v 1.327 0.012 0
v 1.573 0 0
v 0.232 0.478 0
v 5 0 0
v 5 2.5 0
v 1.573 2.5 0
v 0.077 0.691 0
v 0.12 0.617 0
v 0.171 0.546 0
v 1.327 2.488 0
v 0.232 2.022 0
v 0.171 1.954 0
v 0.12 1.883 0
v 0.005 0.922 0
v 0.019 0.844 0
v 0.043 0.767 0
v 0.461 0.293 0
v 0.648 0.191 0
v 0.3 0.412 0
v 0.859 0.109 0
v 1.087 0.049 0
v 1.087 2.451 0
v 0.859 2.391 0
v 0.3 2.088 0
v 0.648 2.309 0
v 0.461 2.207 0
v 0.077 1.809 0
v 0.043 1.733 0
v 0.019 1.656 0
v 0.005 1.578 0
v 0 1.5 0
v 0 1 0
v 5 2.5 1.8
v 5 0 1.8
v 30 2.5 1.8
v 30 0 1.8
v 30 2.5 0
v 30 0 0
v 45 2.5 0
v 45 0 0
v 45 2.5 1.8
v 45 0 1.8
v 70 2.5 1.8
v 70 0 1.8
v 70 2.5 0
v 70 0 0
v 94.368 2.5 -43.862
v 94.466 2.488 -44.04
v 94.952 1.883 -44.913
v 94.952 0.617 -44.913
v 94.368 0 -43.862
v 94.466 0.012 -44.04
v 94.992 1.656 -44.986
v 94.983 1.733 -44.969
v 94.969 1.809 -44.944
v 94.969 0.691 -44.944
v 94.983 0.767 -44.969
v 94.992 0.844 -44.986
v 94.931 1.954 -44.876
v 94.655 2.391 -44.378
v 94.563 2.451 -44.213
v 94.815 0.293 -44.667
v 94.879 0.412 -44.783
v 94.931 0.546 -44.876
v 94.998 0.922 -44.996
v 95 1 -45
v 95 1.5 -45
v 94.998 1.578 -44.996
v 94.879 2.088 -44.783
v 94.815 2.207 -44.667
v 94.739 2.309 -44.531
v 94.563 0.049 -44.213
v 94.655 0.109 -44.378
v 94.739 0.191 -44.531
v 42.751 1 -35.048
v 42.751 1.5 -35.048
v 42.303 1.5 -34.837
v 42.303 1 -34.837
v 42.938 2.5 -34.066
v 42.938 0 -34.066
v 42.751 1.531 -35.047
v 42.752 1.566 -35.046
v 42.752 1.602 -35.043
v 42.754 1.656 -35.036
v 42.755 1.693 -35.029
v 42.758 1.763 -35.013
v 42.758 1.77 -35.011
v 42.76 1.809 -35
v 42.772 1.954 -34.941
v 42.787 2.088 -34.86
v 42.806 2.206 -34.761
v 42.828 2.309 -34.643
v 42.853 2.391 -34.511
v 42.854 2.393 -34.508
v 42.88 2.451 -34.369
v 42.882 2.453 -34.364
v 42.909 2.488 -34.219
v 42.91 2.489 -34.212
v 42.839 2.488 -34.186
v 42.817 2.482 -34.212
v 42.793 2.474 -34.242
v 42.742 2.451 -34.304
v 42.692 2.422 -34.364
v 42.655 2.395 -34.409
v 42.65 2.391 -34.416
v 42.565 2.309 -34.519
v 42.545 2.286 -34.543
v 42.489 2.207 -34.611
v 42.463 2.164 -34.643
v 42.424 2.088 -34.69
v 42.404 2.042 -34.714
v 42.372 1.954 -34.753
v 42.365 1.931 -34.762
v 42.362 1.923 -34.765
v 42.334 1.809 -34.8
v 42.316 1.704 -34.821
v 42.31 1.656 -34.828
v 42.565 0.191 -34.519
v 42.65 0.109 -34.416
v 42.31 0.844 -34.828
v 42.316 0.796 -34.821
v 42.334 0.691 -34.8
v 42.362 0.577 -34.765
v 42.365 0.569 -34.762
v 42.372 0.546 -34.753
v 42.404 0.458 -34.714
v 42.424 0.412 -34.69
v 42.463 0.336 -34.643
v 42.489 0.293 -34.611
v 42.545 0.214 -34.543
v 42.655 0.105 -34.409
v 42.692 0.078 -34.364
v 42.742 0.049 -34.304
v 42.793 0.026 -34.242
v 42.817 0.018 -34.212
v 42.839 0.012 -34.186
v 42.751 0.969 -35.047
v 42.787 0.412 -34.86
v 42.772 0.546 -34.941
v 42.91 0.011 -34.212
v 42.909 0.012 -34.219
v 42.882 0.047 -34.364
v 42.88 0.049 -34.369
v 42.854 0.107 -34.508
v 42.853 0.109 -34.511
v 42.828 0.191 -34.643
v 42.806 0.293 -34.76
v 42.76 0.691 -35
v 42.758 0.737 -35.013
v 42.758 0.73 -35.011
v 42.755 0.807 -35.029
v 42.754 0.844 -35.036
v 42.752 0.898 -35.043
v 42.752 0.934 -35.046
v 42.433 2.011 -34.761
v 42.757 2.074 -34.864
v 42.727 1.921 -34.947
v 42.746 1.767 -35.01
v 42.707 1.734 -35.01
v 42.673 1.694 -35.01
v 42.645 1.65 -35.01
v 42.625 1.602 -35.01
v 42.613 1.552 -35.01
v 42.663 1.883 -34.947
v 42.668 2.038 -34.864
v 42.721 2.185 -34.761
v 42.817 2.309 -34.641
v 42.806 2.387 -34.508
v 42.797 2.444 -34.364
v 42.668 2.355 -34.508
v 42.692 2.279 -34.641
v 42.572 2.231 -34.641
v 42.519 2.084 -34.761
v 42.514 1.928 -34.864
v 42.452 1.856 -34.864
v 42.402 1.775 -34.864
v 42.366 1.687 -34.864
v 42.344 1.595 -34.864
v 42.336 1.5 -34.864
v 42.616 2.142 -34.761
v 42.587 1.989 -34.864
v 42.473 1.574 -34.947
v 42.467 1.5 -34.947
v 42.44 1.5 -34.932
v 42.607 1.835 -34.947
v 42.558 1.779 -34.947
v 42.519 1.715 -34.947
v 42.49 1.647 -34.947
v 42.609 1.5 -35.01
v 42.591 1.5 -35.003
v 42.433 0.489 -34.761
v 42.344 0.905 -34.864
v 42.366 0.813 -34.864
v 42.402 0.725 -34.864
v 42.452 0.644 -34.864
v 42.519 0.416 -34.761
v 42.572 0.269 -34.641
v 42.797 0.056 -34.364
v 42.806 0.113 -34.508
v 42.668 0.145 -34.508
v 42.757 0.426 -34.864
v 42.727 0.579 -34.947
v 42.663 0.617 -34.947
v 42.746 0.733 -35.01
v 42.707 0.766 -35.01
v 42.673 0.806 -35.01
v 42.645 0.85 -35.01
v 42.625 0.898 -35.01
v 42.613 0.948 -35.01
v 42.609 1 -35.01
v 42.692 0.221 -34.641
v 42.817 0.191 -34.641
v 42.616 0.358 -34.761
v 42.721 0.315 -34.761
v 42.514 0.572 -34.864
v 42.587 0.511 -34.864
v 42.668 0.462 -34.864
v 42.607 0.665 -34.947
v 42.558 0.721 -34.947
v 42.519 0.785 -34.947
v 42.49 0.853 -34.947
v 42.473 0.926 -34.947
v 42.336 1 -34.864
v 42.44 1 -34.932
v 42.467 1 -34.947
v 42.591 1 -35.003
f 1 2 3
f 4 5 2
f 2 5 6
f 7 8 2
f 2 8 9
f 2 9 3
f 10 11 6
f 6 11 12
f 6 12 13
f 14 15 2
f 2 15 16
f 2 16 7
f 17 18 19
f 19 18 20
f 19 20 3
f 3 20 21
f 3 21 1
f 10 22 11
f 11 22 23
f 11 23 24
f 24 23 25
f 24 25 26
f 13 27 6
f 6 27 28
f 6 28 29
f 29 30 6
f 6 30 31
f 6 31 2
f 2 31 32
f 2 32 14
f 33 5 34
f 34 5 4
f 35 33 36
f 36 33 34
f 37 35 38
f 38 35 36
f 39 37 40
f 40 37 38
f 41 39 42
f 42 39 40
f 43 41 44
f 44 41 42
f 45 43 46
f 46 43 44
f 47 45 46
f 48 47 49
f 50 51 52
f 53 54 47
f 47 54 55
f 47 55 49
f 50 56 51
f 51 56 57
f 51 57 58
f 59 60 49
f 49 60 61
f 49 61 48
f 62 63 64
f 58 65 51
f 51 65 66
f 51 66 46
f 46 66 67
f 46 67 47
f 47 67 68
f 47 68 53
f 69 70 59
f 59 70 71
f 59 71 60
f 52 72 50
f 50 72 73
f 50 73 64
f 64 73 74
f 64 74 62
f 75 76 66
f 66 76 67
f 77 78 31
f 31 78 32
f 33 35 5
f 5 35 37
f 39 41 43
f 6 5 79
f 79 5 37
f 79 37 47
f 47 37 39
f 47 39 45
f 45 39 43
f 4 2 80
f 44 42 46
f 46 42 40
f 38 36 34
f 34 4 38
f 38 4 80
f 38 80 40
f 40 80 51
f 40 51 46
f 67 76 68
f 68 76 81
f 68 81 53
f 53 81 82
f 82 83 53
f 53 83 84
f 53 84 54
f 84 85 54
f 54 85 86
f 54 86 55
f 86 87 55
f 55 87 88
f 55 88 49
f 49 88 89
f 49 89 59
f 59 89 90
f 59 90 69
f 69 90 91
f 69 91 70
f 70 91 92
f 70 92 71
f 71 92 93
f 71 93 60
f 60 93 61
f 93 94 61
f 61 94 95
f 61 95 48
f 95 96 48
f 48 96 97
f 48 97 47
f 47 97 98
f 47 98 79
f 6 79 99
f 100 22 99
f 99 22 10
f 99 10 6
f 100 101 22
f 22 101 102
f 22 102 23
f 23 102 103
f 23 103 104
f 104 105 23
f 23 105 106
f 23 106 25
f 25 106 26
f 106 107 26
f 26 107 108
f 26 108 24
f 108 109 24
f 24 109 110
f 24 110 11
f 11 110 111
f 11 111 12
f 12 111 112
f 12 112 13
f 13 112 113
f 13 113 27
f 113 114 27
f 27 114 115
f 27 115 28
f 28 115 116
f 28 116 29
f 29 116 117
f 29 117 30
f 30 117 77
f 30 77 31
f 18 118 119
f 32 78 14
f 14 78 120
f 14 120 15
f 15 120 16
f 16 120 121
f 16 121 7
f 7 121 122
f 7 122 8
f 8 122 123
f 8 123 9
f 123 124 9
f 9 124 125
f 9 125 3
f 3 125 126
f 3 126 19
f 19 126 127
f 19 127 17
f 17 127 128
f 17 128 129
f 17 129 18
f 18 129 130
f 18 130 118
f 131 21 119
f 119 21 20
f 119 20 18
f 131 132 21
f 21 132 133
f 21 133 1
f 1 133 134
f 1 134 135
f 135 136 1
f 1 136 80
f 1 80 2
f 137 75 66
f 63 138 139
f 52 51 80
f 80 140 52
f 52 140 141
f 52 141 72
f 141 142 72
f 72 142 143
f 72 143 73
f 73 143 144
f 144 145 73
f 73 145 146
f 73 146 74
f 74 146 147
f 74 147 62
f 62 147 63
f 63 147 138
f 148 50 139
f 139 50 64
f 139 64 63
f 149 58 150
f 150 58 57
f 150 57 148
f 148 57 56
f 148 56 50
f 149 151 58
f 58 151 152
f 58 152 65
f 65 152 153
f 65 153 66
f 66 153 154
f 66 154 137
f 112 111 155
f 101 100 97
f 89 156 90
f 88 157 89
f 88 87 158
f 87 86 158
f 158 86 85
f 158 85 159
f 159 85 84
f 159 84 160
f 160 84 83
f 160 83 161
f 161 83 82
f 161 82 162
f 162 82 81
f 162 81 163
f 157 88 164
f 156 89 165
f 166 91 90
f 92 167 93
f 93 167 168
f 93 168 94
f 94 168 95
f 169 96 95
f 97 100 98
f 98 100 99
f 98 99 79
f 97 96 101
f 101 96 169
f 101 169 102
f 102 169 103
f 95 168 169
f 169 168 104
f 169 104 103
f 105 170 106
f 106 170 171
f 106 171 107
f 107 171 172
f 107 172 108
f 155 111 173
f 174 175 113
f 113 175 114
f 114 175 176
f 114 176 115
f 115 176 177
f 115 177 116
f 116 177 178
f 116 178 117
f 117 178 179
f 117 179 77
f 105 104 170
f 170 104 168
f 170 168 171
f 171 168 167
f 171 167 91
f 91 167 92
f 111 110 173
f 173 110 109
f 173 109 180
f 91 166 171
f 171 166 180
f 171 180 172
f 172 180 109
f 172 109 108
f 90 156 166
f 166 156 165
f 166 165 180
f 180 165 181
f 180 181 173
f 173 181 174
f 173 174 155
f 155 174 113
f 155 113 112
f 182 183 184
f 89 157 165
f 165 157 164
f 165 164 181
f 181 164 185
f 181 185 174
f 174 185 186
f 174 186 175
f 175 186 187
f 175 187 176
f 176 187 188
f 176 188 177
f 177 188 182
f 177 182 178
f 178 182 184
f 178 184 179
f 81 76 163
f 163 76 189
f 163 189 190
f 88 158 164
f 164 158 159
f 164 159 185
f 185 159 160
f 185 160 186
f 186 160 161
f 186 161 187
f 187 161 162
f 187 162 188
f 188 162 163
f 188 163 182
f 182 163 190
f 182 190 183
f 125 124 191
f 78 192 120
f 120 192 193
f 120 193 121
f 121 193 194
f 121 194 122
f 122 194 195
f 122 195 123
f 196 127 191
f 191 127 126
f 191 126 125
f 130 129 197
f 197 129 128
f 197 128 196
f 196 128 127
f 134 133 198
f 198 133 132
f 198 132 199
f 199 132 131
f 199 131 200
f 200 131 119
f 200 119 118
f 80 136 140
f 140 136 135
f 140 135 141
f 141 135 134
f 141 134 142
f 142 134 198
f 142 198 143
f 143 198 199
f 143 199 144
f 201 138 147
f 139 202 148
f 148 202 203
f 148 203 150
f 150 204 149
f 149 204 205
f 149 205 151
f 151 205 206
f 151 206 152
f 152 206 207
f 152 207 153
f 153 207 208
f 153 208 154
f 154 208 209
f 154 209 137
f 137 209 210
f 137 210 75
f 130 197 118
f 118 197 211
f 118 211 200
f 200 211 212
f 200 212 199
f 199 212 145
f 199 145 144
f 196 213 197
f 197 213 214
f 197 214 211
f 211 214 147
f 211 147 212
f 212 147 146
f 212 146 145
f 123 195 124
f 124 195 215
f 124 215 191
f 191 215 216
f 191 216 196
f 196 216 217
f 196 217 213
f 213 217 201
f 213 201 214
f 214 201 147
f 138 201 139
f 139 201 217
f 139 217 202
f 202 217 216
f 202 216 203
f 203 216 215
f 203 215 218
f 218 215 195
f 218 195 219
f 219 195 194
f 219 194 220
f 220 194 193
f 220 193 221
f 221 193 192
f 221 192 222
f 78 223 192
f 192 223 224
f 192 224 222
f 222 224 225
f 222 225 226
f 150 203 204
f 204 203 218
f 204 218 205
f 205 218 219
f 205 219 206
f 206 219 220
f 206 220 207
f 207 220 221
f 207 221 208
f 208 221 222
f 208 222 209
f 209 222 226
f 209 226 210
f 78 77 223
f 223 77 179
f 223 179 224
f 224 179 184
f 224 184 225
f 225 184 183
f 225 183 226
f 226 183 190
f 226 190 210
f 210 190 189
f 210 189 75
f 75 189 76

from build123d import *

# Parameters (mm, degrees)
BOSS_EXTRUDE1_DEPTH = 2.5
FILLET1_R           = 1


with BuildPart() as part:
    # Sketch1 → Boss-Extrude1 (new body)
    with BuildSketch(Plane(origin=(0, 0, 0), x_dir=(1, 0, 0), z_dir=(0, 1, 0))):
        Polygon((0, 0), (42.5, 35), (95, 45), (70, 0), (70, -1.8), (45, -1.8), (45, 0), (30, 0), (30, -1.8), (5, -1.8), (5, 0), align=None)
    extrude(amount=BOSS_EXTRUDE1_DEPTH)

    # Fillet1
    fillet1_edges = [part.edges().sort_by_distance(p)[0] for p in [
        (21.25, 0, -17.5),
        (68.75, 0, -40),
        (42.5, 1.25, -35),
        (68.75, 2.5, -40),
        (21.25, 2.5, -17.5),
    ]]
    fillet(fillet1_edges, radius=FILLET1_R)


solid = part.part
